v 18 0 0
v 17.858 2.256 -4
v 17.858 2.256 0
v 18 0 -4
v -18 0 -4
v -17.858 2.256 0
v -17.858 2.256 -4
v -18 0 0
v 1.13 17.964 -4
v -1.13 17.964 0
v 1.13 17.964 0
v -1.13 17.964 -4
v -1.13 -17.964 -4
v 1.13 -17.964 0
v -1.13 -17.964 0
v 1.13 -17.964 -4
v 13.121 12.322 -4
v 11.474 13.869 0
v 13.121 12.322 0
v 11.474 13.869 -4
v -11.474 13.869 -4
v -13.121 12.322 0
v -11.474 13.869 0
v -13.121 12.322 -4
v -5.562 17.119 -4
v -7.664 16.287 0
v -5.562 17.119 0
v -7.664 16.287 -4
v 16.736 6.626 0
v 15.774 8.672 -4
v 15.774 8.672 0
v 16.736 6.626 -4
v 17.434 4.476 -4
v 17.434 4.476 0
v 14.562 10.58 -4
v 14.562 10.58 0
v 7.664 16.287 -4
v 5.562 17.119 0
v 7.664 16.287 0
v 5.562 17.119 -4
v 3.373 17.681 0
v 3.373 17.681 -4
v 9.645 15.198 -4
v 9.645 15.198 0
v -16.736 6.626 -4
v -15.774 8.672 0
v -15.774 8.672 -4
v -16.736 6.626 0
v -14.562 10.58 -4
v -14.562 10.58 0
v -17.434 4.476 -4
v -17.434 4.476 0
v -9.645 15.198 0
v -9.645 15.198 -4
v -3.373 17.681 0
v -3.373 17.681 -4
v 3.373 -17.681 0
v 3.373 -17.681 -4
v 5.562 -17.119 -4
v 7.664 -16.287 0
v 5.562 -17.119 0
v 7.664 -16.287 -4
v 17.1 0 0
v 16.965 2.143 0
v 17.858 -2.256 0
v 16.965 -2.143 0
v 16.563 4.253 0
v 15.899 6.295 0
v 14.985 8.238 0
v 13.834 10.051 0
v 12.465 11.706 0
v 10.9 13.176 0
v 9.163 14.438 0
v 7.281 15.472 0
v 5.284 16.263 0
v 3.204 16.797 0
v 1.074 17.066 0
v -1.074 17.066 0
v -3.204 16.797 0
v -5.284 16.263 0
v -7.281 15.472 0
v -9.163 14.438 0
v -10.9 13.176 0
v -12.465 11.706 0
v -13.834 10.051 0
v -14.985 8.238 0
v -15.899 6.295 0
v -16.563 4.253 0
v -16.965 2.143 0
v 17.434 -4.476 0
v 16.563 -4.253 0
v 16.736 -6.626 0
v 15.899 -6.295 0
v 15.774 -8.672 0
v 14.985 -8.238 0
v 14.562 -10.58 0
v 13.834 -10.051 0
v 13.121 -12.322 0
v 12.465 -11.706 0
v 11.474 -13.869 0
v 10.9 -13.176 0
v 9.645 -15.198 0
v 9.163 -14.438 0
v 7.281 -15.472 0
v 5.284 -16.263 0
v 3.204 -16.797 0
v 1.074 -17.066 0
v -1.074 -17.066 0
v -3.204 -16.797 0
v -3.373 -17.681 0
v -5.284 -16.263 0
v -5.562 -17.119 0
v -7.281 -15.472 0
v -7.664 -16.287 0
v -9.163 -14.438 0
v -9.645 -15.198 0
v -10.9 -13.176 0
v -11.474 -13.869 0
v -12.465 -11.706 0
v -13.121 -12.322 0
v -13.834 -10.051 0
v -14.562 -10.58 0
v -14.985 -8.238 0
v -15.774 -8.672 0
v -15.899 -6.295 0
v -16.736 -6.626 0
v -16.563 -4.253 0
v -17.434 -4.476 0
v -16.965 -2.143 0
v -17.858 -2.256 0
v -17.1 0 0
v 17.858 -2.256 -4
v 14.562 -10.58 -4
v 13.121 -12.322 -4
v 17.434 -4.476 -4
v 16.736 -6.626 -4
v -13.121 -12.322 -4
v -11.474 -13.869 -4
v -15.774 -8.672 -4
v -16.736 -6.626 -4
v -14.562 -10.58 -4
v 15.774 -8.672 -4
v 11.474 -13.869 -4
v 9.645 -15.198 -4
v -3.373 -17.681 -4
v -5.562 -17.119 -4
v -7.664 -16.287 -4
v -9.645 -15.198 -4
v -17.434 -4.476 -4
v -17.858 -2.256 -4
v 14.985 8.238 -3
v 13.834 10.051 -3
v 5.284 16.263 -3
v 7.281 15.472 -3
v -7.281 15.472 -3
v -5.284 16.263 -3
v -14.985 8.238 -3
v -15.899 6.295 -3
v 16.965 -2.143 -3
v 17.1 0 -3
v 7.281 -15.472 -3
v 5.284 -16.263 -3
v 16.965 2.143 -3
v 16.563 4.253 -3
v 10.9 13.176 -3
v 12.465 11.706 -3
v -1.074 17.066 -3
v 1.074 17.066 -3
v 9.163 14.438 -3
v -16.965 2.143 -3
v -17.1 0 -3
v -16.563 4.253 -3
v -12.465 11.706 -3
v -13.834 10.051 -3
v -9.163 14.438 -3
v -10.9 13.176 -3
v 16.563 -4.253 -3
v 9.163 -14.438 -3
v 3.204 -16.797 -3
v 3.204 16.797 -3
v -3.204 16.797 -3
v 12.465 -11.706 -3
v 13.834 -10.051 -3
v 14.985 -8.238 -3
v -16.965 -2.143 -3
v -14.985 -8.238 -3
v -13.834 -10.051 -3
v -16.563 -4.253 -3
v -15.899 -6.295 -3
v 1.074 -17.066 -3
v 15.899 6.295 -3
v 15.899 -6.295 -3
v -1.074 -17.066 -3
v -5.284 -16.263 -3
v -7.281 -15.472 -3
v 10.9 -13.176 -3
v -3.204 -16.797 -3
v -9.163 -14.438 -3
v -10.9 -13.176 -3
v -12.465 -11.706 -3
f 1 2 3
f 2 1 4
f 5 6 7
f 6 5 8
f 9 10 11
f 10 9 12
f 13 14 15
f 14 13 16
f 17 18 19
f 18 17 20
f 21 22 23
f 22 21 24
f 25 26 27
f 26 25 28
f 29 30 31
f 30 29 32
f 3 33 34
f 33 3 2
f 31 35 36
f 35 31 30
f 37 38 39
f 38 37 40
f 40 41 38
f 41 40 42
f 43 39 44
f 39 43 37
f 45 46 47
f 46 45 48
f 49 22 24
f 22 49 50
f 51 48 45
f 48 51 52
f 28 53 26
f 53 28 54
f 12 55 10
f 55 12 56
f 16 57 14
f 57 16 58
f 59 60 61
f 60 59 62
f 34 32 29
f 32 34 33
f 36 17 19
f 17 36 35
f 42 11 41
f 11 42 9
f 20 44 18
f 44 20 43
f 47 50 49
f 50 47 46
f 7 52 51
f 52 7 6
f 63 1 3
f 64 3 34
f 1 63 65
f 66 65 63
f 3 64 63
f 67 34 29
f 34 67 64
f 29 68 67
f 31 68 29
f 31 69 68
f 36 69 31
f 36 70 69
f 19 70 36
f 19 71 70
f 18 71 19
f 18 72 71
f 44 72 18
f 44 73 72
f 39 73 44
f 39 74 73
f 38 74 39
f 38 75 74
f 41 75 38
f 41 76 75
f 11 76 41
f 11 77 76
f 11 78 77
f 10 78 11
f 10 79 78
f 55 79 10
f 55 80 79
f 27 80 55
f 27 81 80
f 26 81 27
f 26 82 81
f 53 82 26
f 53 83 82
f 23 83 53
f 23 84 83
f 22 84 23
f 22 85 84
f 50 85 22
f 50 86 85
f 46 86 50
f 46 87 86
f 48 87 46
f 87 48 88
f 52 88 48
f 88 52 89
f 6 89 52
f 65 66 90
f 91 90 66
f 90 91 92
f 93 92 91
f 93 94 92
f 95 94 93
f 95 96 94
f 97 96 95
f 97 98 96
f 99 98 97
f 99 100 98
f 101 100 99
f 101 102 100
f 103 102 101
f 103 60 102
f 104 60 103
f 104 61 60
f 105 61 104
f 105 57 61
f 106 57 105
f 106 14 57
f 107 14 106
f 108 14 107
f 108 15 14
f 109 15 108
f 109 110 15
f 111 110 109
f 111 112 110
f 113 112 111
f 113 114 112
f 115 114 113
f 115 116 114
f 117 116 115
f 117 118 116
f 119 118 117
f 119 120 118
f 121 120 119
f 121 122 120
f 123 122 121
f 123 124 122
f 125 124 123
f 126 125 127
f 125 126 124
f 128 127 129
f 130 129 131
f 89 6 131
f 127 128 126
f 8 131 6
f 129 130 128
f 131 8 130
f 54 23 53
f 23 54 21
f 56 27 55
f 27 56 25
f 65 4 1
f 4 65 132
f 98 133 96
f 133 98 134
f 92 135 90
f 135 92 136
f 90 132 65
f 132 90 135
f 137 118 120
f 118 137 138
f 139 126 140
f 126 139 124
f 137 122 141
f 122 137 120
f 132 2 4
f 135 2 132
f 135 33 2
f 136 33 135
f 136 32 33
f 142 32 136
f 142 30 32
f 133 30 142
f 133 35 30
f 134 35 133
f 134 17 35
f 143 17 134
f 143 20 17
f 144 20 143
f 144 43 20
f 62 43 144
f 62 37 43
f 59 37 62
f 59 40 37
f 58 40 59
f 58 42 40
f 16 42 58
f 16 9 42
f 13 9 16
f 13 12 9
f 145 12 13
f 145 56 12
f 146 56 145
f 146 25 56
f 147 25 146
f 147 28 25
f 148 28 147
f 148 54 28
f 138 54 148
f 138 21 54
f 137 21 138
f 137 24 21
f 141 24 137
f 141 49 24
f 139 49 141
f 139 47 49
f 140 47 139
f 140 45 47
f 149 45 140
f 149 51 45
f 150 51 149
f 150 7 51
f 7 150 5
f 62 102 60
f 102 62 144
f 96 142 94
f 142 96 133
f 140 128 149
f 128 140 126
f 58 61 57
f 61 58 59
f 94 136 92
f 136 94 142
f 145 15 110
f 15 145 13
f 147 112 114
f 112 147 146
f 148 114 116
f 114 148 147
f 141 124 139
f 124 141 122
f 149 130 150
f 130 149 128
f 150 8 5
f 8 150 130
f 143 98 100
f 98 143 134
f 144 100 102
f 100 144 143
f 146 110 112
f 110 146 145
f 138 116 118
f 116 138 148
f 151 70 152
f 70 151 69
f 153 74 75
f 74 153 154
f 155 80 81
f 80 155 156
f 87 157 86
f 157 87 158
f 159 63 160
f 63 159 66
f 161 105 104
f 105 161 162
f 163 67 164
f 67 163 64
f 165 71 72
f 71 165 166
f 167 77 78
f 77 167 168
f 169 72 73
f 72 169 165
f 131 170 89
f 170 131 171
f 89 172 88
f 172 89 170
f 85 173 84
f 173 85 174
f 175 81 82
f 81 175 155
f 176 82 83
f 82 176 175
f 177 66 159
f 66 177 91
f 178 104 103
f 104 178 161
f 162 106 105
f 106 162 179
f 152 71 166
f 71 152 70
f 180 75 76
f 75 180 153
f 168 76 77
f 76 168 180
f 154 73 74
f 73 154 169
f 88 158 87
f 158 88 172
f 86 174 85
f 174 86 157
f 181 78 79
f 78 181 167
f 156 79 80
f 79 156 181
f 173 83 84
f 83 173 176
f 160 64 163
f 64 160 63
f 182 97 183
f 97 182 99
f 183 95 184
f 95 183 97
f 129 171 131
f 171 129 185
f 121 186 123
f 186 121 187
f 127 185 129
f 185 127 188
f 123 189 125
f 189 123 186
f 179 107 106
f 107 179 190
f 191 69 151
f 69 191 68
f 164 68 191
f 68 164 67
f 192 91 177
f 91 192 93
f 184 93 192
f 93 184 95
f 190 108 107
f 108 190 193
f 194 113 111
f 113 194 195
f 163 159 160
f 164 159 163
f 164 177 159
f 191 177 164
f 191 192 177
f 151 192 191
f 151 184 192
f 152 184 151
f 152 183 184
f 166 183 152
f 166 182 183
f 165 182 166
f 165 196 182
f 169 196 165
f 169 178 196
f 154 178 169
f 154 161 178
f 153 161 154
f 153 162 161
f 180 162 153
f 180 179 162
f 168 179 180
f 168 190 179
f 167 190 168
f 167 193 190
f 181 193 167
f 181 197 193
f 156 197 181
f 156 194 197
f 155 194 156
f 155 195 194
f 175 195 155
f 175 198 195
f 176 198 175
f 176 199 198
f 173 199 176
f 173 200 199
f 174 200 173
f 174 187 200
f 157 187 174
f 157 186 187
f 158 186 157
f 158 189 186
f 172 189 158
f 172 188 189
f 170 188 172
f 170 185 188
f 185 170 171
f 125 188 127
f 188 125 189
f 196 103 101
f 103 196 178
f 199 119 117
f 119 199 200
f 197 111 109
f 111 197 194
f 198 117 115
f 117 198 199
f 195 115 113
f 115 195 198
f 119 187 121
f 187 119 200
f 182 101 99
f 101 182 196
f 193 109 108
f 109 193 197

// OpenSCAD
$fn = 50;


difference() {
	union() {
		translate(v = [0, 0, -4.0000000000]) {
			cylinder(h = 4, r = 18.0000000000);
		}
	}
	union() {
		#translate(v = [0, 0, -3.0000000000]) {
			cylinder(h = 3, r = 17.1000000000);
		}
	}
}
